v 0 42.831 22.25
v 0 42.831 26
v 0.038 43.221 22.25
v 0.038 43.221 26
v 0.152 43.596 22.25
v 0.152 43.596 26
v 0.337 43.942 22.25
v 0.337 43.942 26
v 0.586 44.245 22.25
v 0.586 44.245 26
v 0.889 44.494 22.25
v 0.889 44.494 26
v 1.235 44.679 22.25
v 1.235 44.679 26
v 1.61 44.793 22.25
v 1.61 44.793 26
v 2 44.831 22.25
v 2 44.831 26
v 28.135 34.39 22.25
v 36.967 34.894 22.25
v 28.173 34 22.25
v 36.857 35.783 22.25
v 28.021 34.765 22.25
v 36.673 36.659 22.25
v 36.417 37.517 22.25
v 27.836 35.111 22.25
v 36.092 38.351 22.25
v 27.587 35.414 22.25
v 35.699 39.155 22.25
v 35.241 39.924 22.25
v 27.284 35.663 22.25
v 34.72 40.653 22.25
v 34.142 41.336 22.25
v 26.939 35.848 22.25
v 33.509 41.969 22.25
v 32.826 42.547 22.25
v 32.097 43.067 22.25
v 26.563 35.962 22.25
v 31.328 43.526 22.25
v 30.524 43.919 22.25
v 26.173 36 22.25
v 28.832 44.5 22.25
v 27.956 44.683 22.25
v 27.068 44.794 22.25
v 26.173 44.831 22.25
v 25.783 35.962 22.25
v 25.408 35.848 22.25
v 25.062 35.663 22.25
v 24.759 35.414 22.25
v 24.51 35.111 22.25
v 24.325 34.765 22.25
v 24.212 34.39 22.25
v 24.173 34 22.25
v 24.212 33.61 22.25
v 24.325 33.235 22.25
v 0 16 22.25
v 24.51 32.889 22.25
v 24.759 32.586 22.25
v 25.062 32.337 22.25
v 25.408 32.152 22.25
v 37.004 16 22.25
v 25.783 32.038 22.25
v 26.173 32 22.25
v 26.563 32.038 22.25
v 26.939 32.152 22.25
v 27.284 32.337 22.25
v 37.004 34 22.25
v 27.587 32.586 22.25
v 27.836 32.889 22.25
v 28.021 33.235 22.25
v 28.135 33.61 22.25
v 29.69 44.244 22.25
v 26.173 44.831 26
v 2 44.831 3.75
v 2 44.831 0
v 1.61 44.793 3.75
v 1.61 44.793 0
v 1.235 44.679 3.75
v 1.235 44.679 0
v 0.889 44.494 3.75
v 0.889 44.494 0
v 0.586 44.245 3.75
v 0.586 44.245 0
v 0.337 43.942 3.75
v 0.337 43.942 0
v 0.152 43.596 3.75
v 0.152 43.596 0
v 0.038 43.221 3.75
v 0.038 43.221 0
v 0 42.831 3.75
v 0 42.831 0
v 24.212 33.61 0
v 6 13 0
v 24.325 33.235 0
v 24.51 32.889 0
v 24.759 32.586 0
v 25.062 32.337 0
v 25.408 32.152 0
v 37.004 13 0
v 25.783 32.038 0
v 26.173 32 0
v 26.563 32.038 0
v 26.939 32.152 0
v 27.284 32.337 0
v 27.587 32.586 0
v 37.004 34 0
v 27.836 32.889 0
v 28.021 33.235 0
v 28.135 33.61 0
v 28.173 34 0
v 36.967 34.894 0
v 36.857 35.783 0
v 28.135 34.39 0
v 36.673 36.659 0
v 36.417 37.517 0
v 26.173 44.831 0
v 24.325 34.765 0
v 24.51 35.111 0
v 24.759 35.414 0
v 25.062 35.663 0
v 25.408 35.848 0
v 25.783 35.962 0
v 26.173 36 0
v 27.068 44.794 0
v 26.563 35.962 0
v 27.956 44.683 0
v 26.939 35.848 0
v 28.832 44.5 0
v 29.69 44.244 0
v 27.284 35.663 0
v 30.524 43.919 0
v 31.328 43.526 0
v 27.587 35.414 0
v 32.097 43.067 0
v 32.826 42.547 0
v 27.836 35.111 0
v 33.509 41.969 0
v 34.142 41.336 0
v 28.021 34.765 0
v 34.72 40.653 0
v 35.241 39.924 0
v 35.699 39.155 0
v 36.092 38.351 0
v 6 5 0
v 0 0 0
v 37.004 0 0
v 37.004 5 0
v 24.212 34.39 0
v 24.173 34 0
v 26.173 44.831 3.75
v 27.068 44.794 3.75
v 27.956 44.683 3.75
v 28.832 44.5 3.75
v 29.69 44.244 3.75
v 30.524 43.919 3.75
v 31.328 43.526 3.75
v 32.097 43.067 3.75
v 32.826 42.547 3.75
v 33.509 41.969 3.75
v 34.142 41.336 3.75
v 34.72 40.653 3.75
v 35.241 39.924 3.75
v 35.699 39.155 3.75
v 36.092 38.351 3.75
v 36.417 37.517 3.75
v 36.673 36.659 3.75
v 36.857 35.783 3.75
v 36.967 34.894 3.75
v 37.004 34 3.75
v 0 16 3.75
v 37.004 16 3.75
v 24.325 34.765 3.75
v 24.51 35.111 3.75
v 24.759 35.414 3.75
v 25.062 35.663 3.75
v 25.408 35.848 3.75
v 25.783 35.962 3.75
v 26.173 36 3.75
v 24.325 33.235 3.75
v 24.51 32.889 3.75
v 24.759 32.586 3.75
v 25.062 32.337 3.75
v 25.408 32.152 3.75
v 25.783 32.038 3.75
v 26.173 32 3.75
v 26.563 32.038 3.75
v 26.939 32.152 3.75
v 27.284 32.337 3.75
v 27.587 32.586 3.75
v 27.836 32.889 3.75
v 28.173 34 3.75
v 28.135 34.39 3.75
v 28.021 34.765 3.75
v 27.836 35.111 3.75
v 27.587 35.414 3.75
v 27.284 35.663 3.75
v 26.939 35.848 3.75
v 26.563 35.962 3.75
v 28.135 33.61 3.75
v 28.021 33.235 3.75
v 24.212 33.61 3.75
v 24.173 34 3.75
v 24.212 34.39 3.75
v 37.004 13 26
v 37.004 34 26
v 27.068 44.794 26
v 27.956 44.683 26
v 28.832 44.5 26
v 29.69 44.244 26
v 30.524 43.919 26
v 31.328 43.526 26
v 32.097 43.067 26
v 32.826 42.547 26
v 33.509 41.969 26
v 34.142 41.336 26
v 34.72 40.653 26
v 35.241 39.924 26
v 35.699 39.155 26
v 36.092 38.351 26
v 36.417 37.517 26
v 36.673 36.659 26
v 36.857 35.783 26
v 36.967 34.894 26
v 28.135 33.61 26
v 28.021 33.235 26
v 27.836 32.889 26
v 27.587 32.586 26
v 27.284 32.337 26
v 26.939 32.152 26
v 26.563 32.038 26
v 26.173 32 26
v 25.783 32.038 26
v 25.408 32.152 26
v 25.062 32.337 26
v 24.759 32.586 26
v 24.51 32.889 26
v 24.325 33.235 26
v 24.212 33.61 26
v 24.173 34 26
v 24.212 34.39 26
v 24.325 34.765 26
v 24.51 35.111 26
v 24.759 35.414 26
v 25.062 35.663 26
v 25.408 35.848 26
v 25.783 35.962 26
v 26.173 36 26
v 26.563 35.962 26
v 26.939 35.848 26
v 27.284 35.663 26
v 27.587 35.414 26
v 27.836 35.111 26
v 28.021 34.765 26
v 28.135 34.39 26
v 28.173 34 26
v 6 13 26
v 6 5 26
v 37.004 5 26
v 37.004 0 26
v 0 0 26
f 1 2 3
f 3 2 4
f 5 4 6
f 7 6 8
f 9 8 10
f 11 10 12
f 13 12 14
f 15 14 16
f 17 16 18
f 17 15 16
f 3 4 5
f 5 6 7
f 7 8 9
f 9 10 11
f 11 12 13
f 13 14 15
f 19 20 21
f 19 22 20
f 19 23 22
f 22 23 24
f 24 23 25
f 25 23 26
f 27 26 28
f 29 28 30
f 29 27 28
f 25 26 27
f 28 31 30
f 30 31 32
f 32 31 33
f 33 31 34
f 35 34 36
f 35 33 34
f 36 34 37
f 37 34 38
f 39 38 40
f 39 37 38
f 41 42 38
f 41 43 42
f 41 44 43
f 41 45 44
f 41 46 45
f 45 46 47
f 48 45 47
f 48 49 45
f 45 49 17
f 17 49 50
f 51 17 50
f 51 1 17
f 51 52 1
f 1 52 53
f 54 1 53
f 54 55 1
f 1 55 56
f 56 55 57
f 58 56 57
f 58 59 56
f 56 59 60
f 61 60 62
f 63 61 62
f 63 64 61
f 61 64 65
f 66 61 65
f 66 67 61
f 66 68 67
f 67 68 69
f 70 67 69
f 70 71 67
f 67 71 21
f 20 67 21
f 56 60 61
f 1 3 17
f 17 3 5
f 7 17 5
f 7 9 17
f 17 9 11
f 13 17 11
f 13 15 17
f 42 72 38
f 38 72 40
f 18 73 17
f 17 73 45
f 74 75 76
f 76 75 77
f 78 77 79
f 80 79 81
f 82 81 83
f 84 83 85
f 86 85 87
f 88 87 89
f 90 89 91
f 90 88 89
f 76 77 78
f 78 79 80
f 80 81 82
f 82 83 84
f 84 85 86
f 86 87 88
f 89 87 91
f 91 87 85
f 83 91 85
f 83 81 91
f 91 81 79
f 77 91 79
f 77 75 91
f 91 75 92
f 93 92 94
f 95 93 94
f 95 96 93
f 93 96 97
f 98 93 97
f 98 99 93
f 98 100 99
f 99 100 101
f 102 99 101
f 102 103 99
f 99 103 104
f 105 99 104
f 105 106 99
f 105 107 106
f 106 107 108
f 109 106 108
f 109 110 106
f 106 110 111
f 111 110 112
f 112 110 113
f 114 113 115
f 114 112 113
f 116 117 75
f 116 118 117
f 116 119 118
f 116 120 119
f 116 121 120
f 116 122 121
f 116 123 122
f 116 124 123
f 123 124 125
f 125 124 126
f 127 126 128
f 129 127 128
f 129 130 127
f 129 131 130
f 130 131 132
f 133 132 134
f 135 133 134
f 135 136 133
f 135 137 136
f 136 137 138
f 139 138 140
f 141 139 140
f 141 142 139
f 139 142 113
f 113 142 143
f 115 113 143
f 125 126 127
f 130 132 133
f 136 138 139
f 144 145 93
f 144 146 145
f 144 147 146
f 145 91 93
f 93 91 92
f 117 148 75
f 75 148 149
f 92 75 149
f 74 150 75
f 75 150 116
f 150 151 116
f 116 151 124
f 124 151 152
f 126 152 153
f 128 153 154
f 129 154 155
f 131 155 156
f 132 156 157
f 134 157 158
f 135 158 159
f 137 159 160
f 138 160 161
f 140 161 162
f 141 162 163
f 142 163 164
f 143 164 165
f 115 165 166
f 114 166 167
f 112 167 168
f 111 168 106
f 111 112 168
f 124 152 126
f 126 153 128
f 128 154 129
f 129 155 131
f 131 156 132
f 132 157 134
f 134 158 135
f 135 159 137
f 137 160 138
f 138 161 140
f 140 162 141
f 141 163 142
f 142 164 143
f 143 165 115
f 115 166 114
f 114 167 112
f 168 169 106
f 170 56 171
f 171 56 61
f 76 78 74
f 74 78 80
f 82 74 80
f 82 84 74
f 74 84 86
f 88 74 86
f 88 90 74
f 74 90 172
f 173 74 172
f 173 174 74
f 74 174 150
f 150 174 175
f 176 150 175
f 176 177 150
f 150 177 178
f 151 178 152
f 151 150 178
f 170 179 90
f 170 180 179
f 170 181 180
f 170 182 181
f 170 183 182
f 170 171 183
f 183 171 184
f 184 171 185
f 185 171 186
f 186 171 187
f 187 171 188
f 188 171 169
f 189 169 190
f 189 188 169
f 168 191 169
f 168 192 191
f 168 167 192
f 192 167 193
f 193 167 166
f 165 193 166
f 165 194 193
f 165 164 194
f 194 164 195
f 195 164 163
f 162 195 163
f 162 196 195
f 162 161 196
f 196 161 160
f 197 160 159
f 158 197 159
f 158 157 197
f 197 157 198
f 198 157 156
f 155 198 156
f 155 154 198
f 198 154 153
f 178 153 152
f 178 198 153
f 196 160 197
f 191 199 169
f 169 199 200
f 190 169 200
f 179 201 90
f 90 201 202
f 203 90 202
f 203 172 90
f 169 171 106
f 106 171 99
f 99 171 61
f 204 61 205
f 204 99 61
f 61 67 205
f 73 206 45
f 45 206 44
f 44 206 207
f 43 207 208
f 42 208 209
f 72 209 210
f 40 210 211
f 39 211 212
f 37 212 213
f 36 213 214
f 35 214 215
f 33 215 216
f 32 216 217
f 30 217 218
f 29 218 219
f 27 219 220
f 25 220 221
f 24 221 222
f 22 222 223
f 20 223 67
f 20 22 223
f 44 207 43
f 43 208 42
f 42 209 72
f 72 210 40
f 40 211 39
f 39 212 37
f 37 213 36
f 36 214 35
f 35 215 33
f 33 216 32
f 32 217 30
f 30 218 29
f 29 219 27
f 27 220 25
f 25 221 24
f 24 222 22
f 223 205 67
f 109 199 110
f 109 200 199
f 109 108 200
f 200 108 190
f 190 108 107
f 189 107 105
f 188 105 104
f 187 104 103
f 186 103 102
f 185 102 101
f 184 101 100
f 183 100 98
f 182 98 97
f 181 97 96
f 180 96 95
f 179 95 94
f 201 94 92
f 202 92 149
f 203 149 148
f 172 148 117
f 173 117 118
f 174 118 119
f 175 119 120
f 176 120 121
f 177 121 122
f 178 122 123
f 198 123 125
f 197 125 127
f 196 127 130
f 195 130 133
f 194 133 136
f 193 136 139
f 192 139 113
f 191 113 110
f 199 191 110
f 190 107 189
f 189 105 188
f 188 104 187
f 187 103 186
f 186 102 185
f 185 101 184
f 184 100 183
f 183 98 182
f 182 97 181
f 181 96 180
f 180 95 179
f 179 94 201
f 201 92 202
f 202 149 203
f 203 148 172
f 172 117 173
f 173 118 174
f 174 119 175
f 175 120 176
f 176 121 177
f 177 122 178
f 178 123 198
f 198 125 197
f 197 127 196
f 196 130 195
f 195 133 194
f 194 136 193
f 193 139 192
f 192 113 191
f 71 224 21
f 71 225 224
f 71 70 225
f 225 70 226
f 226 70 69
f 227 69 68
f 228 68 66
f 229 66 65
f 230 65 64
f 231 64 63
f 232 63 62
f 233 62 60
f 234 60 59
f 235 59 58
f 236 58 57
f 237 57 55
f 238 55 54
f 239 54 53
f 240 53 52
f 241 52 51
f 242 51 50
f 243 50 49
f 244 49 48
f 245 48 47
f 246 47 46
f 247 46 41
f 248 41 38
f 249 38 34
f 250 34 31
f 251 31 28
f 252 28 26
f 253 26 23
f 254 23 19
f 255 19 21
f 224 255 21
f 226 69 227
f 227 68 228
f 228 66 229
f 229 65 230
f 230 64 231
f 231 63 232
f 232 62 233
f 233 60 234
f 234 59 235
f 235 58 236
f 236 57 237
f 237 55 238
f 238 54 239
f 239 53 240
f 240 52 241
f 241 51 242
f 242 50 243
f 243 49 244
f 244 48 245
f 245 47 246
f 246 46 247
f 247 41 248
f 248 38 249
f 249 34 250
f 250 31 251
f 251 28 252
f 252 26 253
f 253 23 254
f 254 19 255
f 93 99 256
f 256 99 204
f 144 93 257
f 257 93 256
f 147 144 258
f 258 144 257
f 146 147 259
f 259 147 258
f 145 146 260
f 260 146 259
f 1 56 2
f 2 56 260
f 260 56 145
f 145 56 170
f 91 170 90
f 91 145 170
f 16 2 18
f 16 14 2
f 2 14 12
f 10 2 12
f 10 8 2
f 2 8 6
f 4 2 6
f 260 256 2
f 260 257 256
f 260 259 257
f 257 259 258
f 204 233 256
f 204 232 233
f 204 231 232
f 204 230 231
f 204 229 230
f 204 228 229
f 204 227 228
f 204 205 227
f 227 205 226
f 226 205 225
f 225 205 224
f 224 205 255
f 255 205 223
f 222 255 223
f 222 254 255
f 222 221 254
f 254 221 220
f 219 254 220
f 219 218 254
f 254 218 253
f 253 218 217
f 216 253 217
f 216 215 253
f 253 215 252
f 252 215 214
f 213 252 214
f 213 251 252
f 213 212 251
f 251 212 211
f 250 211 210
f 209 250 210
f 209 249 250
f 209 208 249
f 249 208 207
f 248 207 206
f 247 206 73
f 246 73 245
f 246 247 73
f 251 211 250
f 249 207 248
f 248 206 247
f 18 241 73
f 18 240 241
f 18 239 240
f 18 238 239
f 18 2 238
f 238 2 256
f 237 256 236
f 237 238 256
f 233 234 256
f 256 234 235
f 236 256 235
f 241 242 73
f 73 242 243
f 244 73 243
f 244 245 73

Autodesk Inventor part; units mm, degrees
ref_plane "YZ Plane" through (0, 0, 0) normal (1, 0, 0) x (0, 1, 0)
ref_plane "XZ Plane" through (0, 0, 0) normal (0, 1, 0) x (-1, 0, 0)
ref_plane "XY Plane" through (0, 0, 0) normal (0, 0, 1) x (1, 0, 0)
sketch "Sketch1" plane through (0, 0, 0) normal (0, 0, 1) x (1, 0, 0)
  line L0 (6, 5) -> (6, 13)
  line L1 (0, 16) -> (0, 0)
  arc A0 (37.0043, 34) -> (18.539, 41.6832) centre (26.1732, 34) ccw
  line L2 (18.539, 41.6832) -> (0, 16)
  circle A1 centre (26.1732, 34) radius 2
  line L3 (37.0043, 5) -> (37.0043, 0)
  line L4 (6, 5) -> (37.0043, 5)
  line L5 (0, 0) -> (37.0043, 0)
  line L6 (6, 13) -> (37.0043, 13)
  line L7 (0, 16) -> (37.0043, 16)
  line L8 (37.0043, 34) -> (37.0043, 13)
  dimension "d3" = 8
  dimension "d6" = 18
  dimension "d7" = 20
  dimension "d8" = 4
  dimension "d9" = 3
  dimension "d10" = 5
  dimension "d11" = 16
  dimension "d12" = 37.0043
  dimension "d13" = 31.0043
extrude "Extrusion1" add sketch "Sketch1" along normal blind 26
sketch "Sketch2" plane through (0, 0, 26) normal (0, 0, 1) x (1, 0, 0)
  point P0 (0, 0)
sketch "Sketch3" plane through (37.0043, 13, 0) normal (1, 0, 0) x (0, 0, -1)
  line L0 (0, 0) -> (-26, 0) projected
  line L1 (-13, 38) -> (-3.75, 38)
  line L2 (-3.75, 38) -> (-3.75, 3)
  line L3 (-13, 38) -> (-22.25, 38)
  line L4 (-22.25, 38) -> (-22.25, 3)
  line L5 (-22.25, 3) -> (-3.75, 3)
  line L6 (0, 0) -> (-26, 0) projected
  point P0 (0, -13)
  point P1 (-26, 3)
  dimension "d19" = 9.25
  dimension "d20" = 9.25
extrude "Extrusion2" cut sketch "Sketch3" against normal through all
sketch "Sketch4" plane through (0, 0, 26) normal (0, 0, 1) x (1, 0, 0)
  arc A0 (37.0043, 34) -> (18.539, 41.6832) centre (26.1732, 34) ccw projected
  line L0 (26.1732, 44.8311) -> (0, 44.8311)
  line L1 (18.539, 41.6832) -> (0, 16) projected
  line L2 (0, 44.8311) -> (0, 16)
  point P0 (0, 0)
extrude "Extrusion3" add sketch "Sketch4" against normal blind 26
sketch "Sketch5" plane through (37.0043, 13, 0) normal (1, 0, 0) x (0, 0, -1)
  line L0 (-22.25, 3) -> (-22.25, 21) projected
  line L1 (-22.25, 3) -> (-3.75, 3)
  line L2 (-3.75, 3) -> (-3.75, 33)
  line L3 (-3.75, 33) -> (-22.25, 33)
  line L4 (-22.25, 33) -> (-22.25, 3)
  point P0 (0, -13)
extrude "Extrusion4" cut sketch "Sketch5" against normal through all
fillet "Fillet1" radius 2 1 edges at (0, 44.8311, 1.875)
fillet "Fillet2" radius 2 1 edges at (0, 44.8311, 24.125)
properties part number "Maintients poullies V3 Beta"
